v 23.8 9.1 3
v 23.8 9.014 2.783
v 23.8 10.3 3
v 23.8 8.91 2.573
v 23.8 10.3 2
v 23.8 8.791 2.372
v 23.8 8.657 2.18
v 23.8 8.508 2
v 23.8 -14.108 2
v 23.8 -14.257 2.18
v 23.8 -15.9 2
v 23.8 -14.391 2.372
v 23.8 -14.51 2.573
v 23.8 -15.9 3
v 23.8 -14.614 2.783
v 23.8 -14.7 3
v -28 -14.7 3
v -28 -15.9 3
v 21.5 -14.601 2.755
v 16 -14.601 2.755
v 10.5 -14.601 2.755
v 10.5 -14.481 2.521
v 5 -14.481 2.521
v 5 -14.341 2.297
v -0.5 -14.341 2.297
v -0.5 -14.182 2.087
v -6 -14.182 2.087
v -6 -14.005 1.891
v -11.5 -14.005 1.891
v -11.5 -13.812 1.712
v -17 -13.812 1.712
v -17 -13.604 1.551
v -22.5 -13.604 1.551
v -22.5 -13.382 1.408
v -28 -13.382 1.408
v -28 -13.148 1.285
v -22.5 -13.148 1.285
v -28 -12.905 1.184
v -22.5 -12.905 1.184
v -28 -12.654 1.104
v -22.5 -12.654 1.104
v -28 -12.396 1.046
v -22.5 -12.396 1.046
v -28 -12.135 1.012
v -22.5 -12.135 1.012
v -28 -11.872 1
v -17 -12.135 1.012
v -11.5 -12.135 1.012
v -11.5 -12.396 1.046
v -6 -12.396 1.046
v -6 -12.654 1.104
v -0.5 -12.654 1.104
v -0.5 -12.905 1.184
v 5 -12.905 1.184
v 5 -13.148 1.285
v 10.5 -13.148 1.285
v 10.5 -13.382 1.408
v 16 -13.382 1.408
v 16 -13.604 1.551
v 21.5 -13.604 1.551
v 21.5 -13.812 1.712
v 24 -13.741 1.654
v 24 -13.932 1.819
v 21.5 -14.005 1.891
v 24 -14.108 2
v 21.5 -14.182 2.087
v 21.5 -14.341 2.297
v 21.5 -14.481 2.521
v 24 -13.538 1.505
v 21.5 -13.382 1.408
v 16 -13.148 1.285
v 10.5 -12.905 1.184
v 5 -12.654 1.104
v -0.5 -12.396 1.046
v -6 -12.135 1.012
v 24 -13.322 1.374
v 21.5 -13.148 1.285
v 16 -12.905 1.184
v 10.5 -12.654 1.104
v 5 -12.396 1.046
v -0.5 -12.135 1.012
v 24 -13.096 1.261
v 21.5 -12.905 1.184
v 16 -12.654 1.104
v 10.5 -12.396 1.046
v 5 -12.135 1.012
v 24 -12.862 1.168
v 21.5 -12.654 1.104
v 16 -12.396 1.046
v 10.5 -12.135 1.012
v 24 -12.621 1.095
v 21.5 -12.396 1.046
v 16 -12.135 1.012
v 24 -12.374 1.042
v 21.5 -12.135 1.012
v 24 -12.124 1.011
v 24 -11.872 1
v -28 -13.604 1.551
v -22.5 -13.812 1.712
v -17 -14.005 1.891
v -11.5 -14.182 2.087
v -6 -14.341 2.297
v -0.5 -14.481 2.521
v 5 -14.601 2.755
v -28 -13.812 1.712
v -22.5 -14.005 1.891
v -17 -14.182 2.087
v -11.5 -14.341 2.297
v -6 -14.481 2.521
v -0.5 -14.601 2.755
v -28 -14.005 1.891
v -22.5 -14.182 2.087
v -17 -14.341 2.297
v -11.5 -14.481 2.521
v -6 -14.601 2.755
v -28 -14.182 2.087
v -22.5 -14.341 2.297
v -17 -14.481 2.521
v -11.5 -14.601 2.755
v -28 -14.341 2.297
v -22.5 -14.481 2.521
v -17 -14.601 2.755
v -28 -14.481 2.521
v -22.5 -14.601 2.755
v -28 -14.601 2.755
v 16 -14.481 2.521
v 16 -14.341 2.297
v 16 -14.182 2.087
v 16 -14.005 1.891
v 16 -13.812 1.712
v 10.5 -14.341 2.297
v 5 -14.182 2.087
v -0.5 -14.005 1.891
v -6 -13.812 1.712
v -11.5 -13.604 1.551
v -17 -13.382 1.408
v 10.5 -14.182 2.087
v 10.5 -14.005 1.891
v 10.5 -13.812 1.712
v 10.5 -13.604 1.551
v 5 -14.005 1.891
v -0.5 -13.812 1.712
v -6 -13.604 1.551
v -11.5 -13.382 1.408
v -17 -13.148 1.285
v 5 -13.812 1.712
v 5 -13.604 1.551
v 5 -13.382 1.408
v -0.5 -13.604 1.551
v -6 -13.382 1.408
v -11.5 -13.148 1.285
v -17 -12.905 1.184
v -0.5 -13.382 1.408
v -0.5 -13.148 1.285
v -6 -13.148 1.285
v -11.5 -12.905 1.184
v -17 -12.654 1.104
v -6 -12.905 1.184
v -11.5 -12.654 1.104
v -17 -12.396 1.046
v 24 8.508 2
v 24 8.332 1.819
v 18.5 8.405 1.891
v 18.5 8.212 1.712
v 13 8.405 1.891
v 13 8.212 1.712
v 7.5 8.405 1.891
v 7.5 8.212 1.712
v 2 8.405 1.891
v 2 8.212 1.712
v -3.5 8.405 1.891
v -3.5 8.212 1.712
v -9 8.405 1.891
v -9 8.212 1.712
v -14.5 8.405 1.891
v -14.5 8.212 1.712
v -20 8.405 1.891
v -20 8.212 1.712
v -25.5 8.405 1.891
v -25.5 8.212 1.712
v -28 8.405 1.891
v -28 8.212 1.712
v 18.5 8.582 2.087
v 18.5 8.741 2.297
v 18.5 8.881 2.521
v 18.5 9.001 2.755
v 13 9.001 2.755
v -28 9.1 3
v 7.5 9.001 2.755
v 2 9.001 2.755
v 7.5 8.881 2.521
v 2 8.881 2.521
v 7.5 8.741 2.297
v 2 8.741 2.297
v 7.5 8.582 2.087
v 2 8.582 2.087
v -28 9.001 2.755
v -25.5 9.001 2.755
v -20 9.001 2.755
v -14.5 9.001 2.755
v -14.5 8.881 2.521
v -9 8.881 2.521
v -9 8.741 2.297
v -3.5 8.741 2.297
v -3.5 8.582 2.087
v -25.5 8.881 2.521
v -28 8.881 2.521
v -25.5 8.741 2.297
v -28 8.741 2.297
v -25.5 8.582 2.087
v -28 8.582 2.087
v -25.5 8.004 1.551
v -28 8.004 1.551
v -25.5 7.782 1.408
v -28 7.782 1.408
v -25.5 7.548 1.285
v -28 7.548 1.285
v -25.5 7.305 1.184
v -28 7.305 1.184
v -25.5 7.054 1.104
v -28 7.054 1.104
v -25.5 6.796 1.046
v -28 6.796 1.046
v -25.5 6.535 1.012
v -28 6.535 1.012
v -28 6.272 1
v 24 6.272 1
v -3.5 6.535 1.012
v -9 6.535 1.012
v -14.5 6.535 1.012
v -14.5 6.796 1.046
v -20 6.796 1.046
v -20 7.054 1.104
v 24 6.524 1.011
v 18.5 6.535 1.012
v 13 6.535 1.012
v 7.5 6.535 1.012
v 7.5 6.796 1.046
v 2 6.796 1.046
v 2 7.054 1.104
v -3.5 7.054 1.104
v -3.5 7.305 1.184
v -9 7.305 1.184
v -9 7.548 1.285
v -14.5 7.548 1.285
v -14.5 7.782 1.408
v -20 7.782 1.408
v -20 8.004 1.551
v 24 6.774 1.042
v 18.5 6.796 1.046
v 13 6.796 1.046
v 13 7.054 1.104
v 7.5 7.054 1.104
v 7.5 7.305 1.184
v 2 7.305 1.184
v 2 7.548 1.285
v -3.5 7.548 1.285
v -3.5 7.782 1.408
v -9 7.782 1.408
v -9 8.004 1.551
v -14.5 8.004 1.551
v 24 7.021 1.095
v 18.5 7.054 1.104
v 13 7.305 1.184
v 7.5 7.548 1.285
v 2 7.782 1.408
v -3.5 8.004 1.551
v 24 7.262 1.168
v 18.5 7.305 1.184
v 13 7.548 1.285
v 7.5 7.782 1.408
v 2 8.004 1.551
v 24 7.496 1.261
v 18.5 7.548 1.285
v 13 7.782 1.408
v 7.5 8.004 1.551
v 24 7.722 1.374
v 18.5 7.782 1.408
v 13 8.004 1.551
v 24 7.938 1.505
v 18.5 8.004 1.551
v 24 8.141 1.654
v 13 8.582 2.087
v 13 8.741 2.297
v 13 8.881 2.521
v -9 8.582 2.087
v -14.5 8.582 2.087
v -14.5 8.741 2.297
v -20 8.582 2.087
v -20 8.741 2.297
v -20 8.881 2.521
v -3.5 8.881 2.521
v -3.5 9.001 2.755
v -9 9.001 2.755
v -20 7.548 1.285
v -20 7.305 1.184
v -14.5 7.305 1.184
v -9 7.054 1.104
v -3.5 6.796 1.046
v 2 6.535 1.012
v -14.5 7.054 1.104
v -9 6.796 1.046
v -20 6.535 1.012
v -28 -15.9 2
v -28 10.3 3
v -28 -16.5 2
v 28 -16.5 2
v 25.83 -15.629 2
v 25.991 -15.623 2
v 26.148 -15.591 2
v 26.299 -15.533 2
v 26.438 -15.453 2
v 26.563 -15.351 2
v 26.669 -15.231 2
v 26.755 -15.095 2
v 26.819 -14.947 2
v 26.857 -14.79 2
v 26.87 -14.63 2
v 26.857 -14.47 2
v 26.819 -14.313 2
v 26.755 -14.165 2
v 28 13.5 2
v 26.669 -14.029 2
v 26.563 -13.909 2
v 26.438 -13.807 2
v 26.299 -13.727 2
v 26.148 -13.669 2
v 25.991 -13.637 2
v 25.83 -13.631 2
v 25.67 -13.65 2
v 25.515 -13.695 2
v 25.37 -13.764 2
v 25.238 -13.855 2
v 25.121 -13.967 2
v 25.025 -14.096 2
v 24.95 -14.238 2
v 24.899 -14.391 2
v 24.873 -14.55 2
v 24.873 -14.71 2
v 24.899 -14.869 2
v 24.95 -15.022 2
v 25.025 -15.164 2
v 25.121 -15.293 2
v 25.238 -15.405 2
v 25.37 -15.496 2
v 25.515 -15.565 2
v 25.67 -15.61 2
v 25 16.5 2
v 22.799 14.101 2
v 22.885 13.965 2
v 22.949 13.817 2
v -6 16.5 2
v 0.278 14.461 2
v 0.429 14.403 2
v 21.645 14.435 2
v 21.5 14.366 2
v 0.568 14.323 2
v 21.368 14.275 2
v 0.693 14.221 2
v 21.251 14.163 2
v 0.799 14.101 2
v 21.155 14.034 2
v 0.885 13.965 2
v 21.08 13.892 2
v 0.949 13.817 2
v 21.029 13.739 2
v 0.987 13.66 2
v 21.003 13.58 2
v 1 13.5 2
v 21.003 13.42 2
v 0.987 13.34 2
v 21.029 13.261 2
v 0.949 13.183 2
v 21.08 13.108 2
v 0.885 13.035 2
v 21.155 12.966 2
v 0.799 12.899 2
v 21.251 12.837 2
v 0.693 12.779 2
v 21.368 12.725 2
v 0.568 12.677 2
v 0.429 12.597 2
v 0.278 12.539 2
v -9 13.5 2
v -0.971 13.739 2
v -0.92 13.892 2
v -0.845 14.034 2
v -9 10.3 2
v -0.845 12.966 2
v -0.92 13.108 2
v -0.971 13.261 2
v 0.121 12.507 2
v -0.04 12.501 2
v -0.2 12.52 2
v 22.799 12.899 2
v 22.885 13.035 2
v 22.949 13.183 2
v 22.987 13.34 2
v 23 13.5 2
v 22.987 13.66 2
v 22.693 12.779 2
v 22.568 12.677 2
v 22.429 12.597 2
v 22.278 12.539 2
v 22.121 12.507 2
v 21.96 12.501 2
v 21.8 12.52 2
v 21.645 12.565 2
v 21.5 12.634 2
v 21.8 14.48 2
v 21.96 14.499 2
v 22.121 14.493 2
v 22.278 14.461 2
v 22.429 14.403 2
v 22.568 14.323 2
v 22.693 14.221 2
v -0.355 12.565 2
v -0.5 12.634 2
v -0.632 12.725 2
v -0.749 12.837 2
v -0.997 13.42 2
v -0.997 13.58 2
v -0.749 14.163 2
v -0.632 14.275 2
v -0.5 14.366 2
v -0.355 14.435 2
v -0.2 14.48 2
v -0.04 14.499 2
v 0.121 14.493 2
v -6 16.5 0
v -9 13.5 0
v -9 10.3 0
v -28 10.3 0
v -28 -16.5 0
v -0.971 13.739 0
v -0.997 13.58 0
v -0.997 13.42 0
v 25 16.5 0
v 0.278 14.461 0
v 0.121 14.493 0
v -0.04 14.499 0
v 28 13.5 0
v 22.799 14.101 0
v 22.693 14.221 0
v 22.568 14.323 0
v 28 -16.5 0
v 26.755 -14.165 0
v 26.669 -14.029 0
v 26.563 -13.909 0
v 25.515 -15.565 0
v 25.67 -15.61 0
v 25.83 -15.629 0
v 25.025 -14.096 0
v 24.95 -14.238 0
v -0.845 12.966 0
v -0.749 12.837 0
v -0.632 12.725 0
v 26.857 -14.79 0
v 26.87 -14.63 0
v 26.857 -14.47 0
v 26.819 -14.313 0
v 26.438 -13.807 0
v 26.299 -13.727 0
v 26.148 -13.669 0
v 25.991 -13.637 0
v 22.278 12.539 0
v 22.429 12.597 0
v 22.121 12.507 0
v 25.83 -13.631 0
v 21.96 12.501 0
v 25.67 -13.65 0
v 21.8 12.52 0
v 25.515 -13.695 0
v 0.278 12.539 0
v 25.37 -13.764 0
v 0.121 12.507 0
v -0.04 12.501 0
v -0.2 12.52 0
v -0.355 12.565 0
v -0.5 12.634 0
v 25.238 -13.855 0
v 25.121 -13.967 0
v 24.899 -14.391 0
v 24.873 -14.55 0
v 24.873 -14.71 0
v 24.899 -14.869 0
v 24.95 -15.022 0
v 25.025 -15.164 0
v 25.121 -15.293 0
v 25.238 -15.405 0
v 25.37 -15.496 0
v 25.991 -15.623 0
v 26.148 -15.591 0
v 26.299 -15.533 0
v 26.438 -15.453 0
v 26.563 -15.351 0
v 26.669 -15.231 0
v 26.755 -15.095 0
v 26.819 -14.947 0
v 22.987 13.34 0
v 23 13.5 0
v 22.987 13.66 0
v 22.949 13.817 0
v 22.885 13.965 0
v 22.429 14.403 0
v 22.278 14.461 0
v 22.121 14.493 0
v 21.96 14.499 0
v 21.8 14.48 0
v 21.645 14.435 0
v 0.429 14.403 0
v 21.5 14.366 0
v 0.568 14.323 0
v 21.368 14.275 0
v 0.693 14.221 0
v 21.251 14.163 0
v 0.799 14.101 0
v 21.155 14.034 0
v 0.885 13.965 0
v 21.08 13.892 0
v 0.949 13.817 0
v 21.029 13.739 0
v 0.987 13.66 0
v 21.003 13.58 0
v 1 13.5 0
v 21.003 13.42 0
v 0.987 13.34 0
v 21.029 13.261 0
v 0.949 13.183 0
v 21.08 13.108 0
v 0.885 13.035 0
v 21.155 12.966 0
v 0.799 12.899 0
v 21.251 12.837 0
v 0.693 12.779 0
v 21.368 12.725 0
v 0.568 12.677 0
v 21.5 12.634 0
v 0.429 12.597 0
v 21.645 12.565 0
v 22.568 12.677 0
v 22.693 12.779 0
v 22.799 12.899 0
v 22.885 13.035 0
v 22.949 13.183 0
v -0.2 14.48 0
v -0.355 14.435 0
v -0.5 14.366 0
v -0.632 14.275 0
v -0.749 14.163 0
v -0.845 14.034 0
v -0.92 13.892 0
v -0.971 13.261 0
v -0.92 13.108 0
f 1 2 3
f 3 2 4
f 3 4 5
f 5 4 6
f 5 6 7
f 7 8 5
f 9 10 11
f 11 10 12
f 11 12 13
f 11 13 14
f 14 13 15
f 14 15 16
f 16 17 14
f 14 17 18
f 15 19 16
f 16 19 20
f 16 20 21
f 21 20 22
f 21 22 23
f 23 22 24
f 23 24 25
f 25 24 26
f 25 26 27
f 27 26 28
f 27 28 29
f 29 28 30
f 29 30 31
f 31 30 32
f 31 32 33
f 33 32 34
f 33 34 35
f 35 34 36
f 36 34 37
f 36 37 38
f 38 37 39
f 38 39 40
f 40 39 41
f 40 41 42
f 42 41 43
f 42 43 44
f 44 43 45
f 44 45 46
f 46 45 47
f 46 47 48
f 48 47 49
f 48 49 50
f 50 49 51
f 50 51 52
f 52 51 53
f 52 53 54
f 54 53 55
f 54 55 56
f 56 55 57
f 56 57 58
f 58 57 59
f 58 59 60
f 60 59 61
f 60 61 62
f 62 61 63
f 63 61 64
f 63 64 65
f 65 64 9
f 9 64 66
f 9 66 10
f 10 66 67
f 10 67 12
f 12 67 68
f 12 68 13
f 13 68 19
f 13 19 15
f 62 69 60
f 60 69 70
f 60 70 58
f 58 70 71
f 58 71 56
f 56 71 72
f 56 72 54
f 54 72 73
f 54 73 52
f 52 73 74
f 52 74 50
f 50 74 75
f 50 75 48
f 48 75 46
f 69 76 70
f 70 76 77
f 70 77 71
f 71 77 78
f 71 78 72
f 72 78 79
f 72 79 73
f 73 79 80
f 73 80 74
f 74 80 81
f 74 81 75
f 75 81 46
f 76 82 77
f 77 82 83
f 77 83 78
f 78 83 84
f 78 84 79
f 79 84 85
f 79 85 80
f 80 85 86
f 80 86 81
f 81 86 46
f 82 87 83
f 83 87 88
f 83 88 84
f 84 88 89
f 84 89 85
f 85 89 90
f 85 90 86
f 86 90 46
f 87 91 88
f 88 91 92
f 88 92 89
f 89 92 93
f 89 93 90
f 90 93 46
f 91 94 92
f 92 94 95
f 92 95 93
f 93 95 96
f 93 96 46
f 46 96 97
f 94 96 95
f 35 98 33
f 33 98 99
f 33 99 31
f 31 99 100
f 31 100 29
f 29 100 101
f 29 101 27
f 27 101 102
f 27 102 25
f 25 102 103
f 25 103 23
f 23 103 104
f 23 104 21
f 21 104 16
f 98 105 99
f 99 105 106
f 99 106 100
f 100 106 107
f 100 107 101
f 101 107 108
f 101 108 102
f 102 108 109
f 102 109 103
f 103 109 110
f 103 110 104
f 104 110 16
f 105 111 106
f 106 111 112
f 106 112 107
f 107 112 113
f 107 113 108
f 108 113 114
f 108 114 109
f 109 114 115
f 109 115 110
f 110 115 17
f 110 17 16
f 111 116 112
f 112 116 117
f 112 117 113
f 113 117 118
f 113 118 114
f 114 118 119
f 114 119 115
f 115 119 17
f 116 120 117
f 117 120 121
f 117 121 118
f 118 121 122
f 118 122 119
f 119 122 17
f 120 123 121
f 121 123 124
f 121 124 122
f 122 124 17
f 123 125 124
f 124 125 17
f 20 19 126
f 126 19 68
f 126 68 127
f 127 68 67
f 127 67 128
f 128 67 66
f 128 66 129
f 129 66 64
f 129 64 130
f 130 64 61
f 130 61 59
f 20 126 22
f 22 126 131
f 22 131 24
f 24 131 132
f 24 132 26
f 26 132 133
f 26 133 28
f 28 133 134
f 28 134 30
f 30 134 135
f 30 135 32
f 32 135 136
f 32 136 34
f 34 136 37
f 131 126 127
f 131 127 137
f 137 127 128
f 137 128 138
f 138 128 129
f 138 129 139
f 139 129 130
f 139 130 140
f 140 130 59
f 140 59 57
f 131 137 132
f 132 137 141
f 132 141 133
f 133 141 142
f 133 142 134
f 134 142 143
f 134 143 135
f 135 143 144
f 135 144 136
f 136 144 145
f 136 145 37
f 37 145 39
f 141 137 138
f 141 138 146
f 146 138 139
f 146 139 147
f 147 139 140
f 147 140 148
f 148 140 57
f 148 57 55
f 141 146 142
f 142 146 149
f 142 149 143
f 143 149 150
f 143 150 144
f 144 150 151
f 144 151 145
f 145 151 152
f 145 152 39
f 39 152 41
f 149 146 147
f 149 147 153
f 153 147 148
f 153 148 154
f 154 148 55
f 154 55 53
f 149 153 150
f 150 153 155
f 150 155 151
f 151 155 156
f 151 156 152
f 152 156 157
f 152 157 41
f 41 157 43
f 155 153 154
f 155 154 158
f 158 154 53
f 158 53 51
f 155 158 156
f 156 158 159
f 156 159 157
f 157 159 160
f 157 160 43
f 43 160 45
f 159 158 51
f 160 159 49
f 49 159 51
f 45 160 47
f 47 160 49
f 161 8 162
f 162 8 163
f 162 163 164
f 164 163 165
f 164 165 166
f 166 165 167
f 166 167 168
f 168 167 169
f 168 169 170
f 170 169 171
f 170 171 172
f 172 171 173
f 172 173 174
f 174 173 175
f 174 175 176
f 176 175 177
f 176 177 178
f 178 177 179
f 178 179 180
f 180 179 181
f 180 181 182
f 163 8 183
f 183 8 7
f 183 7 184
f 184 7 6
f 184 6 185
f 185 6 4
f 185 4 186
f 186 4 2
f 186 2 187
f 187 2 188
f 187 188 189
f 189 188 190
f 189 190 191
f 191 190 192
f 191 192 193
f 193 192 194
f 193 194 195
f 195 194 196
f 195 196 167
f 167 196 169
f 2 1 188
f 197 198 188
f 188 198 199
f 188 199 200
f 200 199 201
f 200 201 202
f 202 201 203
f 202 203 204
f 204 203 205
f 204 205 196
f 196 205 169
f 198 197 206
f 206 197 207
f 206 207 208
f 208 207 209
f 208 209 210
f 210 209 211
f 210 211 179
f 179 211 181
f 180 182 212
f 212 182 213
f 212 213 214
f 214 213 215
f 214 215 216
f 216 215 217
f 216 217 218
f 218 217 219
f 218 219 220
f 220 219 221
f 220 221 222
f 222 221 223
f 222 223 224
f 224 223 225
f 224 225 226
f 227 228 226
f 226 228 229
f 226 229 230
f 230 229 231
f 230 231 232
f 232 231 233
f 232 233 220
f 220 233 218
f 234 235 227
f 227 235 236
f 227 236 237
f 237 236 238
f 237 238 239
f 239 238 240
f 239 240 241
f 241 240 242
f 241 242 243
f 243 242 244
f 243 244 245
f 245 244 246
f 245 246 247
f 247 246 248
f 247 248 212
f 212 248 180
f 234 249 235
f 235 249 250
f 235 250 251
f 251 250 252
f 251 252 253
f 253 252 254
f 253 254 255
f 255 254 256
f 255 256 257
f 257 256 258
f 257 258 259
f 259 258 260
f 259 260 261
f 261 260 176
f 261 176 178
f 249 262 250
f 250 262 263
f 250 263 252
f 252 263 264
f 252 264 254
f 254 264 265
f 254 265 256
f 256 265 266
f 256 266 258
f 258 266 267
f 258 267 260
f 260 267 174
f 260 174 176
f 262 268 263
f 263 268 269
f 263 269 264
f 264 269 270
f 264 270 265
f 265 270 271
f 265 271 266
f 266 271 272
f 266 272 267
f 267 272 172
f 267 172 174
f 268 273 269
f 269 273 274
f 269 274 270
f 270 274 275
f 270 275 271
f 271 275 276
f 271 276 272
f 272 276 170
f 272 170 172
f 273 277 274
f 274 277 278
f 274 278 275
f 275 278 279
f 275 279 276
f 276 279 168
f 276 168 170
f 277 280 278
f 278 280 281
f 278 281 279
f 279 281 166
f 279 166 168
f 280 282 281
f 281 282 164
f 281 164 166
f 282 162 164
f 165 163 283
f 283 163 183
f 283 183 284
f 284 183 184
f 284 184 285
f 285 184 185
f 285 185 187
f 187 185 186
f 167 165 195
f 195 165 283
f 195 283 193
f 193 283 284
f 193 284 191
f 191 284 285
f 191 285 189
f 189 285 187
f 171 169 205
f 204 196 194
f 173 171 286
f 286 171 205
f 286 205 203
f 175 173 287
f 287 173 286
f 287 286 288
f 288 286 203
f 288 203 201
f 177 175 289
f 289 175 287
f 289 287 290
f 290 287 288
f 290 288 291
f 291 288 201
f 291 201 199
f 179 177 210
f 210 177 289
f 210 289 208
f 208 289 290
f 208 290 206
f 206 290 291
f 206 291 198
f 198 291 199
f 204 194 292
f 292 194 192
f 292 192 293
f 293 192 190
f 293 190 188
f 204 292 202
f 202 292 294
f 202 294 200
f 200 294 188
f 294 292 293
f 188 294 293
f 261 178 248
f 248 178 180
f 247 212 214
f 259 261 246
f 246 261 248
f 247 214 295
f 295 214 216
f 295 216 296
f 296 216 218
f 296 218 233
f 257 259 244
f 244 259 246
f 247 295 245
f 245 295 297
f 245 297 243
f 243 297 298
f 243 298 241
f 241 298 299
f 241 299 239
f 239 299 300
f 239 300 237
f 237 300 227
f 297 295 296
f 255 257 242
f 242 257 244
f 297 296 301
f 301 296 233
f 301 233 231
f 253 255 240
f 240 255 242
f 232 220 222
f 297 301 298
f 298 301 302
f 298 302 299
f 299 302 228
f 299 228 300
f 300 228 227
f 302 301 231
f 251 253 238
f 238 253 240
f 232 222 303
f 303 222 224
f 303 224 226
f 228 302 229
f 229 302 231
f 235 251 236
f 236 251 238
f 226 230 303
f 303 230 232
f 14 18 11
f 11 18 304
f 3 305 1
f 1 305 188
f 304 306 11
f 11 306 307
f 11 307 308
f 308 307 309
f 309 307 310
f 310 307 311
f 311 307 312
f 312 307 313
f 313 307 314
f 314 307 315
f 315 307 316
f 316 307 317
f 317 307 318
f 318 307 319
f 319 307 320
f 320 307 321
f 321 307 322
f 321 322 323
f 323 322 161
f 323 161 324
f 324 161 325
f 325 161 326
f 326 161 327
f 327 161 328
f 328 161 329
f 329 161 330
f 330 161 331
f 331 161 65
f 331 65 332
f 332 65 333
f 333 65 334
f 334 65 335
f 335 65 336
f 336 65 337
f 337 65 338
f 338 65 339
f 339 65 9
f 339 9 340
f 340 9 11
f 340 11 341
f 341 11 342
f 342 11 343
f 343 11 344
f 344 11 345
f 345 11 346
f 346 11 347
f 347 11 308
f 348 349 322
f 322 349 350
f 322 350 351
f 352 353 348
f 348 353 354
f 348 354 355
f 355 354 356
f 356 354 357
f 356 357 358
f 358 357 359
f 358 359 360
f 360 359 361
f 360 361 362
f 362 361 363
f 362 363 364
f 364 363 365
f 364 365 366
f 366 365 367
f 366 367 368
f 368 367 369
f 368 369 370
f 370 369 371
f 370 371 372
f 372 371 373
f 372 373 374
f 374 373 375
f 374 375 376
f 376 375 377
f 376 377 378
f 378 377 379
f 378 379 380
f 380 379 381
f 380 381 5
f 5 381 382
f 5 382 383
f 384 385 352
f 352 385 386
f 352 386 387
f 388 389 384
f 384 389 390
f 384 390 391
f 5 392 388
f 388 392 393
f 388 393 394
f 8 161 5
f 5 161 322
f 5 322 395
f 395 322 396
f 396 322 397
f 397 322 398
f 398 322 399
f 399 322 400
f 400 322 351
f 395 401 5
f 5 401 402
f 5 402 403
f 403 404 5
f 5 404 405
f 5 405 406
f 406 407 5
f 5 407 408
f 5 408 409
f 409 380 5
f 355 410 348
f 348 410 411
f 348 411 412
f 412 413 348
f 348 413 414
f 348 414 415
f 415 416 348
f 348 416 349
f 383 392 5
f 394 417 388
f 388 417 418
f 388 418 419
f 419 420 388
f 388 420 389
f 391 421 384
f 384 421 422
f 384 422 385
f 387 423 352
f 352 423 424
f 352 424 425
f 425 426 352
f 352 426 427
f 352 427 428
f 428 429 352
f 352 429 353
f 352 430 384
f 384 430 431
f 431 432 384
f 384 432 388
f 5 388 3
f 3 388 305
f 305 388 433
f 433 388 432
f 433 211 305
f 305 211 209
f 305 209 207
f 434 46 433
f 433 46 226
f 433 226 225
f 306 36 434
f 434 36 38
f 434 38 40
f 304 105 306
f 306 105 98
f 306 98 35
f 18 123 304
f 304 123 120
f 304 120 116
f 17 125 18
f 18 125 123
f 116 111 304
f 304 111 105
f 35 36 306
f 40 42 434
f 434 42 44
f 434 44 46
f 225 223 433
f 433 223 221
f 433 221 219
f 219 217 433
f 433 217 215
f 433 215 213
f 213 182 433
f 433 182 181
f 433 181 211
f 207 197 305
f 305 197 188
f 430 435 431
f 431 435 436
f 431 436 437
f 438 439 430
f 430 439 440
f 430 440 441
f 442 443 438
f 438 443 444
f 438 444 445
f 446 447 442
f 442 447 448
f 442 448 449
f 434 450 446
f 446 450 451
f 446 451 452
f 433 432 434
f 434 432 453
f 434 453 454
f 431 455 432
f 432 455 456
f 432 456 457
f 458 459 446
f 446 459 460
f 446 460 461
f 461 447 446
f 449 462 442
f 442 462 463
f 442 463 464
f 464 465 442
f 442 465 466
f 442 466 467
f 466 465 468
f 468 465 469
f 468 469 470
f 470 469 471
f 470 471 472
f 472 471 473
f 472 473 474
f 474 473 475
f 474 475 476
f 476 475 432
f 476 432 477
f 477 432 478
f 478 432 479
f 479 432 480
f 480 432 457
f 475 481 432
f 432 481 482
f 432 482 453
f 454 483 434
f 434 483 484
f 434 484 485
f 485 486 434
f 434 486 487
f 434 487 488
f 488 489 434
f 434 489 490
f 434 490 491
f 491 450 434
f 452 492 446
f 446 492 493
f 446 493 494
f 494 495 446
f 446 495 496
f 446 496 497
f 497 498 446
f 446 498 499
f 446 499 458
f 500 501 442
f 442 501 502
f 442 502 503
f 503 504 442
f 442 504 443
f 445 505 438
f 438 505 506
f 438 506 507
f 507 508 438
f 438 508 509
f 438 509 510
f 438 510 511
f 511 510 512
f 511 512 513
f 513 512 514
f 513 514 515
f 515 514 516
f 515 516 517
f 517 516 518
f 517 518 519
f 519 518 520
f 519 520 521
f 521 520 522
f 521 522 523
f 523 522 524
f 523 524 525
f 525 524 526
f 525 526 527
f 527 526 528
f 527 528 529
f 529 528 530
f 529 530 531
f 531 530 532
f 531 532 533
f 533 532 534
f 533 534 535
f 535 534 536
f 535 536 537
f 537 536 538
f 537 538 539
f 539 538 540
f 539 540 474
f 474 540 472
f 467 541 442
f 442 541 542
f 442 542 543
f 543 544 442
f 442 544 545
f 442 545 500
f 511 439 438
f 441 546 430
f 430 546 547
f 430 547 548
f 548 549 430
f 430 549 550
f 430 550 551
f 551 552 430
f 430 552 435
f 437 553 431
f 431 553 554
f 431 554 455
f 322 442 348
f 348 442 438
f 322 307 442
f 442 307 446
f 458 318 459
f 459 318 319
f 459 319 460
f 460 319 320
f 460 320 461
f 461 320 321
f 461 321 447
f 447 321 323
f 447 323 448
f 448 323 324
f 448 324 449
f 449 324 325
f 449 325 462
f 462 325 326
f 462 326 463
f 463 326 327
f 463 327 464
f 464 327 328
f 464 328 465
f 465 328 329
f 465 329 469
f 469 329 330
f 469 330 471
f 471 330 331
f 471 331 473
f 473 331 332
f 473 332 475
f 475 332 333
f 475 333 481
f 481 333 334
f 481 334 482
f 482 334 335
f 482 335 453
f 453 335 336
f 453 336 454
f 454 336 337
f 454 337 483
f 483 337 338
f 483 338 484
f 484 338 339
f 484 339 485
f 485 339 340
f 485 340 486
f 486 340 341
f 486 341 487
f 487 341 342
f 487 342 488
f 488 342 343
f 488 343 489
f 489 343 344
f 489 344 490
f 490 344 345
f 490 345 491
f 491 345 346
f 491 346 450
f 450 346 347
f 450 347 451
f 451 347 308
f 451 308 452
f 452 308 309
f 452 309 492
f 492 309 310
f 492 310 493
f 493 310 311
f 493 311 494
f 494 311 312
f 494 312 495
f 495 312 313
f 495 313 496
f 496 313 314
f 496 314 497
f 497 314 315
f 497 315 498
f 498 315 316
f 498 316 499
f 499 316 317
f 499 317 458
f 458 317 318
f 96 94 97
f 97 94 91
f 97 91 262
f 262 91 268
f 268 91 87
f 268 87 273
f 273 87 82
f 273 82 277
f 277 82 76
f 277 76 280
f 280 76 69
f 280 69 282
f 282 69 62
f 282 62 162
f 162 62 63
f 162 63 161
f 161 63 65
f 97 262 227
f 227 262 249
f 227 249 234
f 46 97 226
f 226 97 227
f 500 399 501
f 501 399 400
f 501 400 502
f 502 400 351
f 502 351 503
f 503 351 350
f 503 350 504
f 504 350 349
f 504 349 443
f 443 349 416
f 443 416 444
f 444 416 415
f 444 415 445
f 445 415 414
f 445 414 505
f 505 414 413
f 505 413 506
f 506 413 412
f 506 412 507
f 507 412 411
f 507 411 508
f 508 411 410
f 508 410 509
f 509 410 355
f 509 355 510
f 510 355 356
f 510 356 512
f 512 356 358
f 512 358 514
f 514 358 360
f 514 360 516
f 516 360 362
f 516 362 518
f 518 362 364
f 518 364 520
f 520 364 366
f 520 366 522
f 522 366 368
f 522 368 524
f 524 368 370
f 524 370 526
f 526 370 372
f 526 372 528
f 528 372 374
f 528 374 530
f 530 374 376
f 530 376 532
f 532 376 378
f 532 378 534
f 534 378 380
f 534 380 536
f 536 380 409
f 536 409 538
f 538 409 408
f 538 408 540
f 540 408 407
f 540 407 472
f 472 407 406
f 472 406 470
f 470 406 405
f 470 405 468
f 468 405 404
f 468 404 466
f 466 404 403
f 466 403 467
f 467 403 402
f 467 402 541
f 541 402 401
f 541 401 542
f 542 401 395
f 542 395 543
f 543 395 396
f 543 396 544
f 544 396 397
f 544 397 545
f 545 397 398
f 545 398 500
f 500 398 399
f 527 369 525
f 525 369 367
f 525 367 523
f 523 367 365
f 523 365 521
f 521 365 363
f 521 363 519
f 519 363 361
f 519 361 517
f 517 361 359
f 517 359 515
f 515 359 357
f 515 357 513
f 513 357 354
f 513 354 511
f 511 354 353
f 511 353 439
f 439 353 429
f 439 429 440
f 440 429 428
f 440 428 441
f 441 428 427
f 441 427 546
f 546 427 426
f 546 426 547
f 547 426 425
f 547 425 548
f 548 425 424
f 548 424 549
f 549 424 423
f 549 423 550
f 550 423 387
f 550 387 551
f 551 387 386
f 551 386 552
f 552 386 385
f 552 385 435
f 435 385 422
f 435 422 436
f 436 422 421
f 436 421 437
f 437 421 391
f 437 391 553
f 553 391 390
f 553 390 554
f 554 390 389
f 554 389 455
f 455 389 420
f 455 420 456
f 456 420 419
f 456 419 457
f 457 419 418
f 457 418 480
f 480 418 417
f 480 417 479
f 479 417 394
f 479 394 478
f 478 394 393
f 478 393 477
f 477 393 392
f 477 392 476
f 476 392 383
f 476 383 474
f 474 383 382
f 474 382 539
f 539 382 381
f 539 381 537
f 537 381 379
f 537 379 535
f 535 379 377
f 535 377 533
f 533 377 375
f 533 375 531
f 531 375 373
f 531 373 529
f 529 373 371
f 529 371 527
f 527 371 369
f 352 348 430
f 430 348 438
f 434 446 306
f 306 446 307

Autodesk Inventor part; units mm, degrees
ref_plane "YZ Plane" through (0, 0, 0) normal (1, 0, 0) x (0, 1, 0)
ref_plane "XZ Plane" through (0, 0, 0) normal (0, 1, 0) x (-1, 0, 0)
ref_plane "XY Plane" through (0, 0, 0) normal (0, 0, 1) x (1, 0, 0)
sketch "Sketch1" plane through (0, 0, 0) normal (0, 0, 1) x (1, 0, 0)
  line L0 (-28, 16.5) -> (28, 16.5)
  line L1 (28, 16.5) -> (28, -16.5)
  line L2 (28, -16.5) -> (-28, -16.5)
  line L3 (-28, -16.5) -> (-28, 16.5)
  point P0 (0, 0)
  dimension "d0" = 33
  dimension "d1" = 56
  dimension "d2" = 16.5
  dimension "d3" = 28
extrude "Extrusion1" add sketch "Sketch1" along normal blind 2
sketch "Sketch2" plane through (0, 0, 2) normal (0, 0, 1) x (1, 0, 0)
  line L0 (-28, 16.5) -> (-28, -16.5) projected
  line L1 (-28, -16.5) -> (28, -16.5) projected
  circle A0 centre (0, 13.5) radius 1
  circle A1 centre (22, 13.5) radius 1
  point P0 (0, 0)
  dimension "d6" = 28
  dimension "d7" = 30
  dimension "d8" = 50
  dimension "d9" = 30
  dimension "d10" = 2
  dimension "d11" = 2
extrude "Extrusion2" cut sketch "Sketch2" against normal blind 2
sketch "Sketch3" plane through (0, 0, 2) normal (0, 0, 1) x (1, 0, 0)
  line L0 (-28, 16.5) -> (-28, -16.5) projected
  line L1 (-28, 11.5) -> (24, 11.5)
  line L2 (24, 11.5) -> (24, -14.7)
  line L3 (24, -14.7) -> (-28, -14.7)
  line L4 (-28, -14.7) -> (-28, 11.5)
  line L5 (-28, -16.5) -> (28, -16.5) projected
  line L6 (-28, 11.5) -> (24, 11.5)
  line L7 (24, 11.5) -> (24, 9.1)
  line L8 (24, 9.1) -> (-28, 9.1)
  line L9 (-28, 9.1) -> (-28, 11.5)
  point P0 (0, 0)
  point P1 (-28, 9.1)
  point P2 (-28, -14.7)
  dimension "d14" = 1.8
  dimension "d15" = 28
  dimension "d16" = 2.4
  dimension "d17" = 52
extrude "Extrusion3" cut sketch "Sketch3" against normal blind 1 contours L8 L2 L3 L0
sketch "Sketch4" plane through (0, 0, 2) normal (0, 0, 1) x (1, 0, 0)
  line L0 (-28, -14.7) -> (-28, 9.1) projected
  line L1 (-28, -16.5) -> (28, -16.5) projected
  circle A0 centre (25.87, -14.63) radius 1
  point P0 (0, 0)
  point P1 (-28, -14.1)
  dimension "d23" = 53.87
  dimension "d24" = 1.87
  dimension "d25" = 2
extrude "Extrusion4" cut sketch "Sketch4" against normal blind 2
chamfer "Chamfer2" distance 3 angle 45 1 edges at (28, 16.5, 1)
sketch "Sketch8" plane through (0, 0, 2) normal (0, 0, 1) x (1, 0, 0)
  line L0 (25, 16.5) -> (-28, 16.5) projected
  line L1 (-28, 16.5) -> (-9, 16.5)
  line L2 (-9, 16.5) -> (-9, 10.3)
  line L3 (-9, 10.3) -> (-28, 10.3)
  line L4 (-28, 10.3) -> (-28, 16.5)
  line L5 (-28, 9.1) -> (24, 9.1) projected
  point P0 (0, 0)
  dimension "d40" = 19
  dimension "d41" = 1.2
extrude "Extrusion7" cut sketch "Sketch8" against normal blind 2
chamfer "Chamfer4" distance 3 angle 45 1 edges at (-9, 16.5, 1)
sketch "Sketch9" plane through (0, 0, 2) normal (0, 0, 1) x (1, 0, 0)
  line L0 (-28, 10.3) -> (-9, 10.3) projected
  line L1 (-28, 9.1) -> (24, 9.1) projected
  line L2 (-28, 10.3) -> (24, 10.3)
  line L3 (24, 10.3) -> (24, 9.1)
  line L4 (24, 9.1) -> (-28, 9.1)
  line L5 (-28, 9.1) -> (-28, 10.3)
  line L6 (24, -14.7) -> (-28, -14.7) projected
  line L7 (-28, -14.7) -> (24, -14.7)
  line L8 (24, -14.7) -> (24, -15.9)
  line L9 (24, -15.9) -> (-28, -15.9)
  line L10 (-28, -15.9) -> (-28, -14.7)
  line L11 (24, 9.1) -> (24, -14.7) projected
  point P0 (0, 0)
  dimension "d47" = 1.2
extrude "Extrusion8" add sketch "Sketch9" along normal blind 1
fillet "Fillet1" radius 3 2 edges at (-2, 9.1, 1) (-2, -14.7, 1)
sketch "Sketch10" plane through (0, 0, 3) normal (0, 0, 1) x (1, 0, 0)
  line L0 (24, 9.1) -> (24, 10.3) projected
  line L1 (-28, -15.9) -> (24, -15.9) projected
  line L2 (24, 10.3) -> (23.8, 10.3)
  line L3 (23.8, 10.3) -> (23.8, -15.9)
  line L4 (23.8, -15.9) -> (24, -15.9)
  line L5 (24, -15.9) -> (24, 10.3)
  point P0 (0, 0)
  dimension "d51" = 0.2
extrude "Extrusion9" cut sketch "Sketch10" against normal blind 1
properties part number "hdmi_base_plate"
